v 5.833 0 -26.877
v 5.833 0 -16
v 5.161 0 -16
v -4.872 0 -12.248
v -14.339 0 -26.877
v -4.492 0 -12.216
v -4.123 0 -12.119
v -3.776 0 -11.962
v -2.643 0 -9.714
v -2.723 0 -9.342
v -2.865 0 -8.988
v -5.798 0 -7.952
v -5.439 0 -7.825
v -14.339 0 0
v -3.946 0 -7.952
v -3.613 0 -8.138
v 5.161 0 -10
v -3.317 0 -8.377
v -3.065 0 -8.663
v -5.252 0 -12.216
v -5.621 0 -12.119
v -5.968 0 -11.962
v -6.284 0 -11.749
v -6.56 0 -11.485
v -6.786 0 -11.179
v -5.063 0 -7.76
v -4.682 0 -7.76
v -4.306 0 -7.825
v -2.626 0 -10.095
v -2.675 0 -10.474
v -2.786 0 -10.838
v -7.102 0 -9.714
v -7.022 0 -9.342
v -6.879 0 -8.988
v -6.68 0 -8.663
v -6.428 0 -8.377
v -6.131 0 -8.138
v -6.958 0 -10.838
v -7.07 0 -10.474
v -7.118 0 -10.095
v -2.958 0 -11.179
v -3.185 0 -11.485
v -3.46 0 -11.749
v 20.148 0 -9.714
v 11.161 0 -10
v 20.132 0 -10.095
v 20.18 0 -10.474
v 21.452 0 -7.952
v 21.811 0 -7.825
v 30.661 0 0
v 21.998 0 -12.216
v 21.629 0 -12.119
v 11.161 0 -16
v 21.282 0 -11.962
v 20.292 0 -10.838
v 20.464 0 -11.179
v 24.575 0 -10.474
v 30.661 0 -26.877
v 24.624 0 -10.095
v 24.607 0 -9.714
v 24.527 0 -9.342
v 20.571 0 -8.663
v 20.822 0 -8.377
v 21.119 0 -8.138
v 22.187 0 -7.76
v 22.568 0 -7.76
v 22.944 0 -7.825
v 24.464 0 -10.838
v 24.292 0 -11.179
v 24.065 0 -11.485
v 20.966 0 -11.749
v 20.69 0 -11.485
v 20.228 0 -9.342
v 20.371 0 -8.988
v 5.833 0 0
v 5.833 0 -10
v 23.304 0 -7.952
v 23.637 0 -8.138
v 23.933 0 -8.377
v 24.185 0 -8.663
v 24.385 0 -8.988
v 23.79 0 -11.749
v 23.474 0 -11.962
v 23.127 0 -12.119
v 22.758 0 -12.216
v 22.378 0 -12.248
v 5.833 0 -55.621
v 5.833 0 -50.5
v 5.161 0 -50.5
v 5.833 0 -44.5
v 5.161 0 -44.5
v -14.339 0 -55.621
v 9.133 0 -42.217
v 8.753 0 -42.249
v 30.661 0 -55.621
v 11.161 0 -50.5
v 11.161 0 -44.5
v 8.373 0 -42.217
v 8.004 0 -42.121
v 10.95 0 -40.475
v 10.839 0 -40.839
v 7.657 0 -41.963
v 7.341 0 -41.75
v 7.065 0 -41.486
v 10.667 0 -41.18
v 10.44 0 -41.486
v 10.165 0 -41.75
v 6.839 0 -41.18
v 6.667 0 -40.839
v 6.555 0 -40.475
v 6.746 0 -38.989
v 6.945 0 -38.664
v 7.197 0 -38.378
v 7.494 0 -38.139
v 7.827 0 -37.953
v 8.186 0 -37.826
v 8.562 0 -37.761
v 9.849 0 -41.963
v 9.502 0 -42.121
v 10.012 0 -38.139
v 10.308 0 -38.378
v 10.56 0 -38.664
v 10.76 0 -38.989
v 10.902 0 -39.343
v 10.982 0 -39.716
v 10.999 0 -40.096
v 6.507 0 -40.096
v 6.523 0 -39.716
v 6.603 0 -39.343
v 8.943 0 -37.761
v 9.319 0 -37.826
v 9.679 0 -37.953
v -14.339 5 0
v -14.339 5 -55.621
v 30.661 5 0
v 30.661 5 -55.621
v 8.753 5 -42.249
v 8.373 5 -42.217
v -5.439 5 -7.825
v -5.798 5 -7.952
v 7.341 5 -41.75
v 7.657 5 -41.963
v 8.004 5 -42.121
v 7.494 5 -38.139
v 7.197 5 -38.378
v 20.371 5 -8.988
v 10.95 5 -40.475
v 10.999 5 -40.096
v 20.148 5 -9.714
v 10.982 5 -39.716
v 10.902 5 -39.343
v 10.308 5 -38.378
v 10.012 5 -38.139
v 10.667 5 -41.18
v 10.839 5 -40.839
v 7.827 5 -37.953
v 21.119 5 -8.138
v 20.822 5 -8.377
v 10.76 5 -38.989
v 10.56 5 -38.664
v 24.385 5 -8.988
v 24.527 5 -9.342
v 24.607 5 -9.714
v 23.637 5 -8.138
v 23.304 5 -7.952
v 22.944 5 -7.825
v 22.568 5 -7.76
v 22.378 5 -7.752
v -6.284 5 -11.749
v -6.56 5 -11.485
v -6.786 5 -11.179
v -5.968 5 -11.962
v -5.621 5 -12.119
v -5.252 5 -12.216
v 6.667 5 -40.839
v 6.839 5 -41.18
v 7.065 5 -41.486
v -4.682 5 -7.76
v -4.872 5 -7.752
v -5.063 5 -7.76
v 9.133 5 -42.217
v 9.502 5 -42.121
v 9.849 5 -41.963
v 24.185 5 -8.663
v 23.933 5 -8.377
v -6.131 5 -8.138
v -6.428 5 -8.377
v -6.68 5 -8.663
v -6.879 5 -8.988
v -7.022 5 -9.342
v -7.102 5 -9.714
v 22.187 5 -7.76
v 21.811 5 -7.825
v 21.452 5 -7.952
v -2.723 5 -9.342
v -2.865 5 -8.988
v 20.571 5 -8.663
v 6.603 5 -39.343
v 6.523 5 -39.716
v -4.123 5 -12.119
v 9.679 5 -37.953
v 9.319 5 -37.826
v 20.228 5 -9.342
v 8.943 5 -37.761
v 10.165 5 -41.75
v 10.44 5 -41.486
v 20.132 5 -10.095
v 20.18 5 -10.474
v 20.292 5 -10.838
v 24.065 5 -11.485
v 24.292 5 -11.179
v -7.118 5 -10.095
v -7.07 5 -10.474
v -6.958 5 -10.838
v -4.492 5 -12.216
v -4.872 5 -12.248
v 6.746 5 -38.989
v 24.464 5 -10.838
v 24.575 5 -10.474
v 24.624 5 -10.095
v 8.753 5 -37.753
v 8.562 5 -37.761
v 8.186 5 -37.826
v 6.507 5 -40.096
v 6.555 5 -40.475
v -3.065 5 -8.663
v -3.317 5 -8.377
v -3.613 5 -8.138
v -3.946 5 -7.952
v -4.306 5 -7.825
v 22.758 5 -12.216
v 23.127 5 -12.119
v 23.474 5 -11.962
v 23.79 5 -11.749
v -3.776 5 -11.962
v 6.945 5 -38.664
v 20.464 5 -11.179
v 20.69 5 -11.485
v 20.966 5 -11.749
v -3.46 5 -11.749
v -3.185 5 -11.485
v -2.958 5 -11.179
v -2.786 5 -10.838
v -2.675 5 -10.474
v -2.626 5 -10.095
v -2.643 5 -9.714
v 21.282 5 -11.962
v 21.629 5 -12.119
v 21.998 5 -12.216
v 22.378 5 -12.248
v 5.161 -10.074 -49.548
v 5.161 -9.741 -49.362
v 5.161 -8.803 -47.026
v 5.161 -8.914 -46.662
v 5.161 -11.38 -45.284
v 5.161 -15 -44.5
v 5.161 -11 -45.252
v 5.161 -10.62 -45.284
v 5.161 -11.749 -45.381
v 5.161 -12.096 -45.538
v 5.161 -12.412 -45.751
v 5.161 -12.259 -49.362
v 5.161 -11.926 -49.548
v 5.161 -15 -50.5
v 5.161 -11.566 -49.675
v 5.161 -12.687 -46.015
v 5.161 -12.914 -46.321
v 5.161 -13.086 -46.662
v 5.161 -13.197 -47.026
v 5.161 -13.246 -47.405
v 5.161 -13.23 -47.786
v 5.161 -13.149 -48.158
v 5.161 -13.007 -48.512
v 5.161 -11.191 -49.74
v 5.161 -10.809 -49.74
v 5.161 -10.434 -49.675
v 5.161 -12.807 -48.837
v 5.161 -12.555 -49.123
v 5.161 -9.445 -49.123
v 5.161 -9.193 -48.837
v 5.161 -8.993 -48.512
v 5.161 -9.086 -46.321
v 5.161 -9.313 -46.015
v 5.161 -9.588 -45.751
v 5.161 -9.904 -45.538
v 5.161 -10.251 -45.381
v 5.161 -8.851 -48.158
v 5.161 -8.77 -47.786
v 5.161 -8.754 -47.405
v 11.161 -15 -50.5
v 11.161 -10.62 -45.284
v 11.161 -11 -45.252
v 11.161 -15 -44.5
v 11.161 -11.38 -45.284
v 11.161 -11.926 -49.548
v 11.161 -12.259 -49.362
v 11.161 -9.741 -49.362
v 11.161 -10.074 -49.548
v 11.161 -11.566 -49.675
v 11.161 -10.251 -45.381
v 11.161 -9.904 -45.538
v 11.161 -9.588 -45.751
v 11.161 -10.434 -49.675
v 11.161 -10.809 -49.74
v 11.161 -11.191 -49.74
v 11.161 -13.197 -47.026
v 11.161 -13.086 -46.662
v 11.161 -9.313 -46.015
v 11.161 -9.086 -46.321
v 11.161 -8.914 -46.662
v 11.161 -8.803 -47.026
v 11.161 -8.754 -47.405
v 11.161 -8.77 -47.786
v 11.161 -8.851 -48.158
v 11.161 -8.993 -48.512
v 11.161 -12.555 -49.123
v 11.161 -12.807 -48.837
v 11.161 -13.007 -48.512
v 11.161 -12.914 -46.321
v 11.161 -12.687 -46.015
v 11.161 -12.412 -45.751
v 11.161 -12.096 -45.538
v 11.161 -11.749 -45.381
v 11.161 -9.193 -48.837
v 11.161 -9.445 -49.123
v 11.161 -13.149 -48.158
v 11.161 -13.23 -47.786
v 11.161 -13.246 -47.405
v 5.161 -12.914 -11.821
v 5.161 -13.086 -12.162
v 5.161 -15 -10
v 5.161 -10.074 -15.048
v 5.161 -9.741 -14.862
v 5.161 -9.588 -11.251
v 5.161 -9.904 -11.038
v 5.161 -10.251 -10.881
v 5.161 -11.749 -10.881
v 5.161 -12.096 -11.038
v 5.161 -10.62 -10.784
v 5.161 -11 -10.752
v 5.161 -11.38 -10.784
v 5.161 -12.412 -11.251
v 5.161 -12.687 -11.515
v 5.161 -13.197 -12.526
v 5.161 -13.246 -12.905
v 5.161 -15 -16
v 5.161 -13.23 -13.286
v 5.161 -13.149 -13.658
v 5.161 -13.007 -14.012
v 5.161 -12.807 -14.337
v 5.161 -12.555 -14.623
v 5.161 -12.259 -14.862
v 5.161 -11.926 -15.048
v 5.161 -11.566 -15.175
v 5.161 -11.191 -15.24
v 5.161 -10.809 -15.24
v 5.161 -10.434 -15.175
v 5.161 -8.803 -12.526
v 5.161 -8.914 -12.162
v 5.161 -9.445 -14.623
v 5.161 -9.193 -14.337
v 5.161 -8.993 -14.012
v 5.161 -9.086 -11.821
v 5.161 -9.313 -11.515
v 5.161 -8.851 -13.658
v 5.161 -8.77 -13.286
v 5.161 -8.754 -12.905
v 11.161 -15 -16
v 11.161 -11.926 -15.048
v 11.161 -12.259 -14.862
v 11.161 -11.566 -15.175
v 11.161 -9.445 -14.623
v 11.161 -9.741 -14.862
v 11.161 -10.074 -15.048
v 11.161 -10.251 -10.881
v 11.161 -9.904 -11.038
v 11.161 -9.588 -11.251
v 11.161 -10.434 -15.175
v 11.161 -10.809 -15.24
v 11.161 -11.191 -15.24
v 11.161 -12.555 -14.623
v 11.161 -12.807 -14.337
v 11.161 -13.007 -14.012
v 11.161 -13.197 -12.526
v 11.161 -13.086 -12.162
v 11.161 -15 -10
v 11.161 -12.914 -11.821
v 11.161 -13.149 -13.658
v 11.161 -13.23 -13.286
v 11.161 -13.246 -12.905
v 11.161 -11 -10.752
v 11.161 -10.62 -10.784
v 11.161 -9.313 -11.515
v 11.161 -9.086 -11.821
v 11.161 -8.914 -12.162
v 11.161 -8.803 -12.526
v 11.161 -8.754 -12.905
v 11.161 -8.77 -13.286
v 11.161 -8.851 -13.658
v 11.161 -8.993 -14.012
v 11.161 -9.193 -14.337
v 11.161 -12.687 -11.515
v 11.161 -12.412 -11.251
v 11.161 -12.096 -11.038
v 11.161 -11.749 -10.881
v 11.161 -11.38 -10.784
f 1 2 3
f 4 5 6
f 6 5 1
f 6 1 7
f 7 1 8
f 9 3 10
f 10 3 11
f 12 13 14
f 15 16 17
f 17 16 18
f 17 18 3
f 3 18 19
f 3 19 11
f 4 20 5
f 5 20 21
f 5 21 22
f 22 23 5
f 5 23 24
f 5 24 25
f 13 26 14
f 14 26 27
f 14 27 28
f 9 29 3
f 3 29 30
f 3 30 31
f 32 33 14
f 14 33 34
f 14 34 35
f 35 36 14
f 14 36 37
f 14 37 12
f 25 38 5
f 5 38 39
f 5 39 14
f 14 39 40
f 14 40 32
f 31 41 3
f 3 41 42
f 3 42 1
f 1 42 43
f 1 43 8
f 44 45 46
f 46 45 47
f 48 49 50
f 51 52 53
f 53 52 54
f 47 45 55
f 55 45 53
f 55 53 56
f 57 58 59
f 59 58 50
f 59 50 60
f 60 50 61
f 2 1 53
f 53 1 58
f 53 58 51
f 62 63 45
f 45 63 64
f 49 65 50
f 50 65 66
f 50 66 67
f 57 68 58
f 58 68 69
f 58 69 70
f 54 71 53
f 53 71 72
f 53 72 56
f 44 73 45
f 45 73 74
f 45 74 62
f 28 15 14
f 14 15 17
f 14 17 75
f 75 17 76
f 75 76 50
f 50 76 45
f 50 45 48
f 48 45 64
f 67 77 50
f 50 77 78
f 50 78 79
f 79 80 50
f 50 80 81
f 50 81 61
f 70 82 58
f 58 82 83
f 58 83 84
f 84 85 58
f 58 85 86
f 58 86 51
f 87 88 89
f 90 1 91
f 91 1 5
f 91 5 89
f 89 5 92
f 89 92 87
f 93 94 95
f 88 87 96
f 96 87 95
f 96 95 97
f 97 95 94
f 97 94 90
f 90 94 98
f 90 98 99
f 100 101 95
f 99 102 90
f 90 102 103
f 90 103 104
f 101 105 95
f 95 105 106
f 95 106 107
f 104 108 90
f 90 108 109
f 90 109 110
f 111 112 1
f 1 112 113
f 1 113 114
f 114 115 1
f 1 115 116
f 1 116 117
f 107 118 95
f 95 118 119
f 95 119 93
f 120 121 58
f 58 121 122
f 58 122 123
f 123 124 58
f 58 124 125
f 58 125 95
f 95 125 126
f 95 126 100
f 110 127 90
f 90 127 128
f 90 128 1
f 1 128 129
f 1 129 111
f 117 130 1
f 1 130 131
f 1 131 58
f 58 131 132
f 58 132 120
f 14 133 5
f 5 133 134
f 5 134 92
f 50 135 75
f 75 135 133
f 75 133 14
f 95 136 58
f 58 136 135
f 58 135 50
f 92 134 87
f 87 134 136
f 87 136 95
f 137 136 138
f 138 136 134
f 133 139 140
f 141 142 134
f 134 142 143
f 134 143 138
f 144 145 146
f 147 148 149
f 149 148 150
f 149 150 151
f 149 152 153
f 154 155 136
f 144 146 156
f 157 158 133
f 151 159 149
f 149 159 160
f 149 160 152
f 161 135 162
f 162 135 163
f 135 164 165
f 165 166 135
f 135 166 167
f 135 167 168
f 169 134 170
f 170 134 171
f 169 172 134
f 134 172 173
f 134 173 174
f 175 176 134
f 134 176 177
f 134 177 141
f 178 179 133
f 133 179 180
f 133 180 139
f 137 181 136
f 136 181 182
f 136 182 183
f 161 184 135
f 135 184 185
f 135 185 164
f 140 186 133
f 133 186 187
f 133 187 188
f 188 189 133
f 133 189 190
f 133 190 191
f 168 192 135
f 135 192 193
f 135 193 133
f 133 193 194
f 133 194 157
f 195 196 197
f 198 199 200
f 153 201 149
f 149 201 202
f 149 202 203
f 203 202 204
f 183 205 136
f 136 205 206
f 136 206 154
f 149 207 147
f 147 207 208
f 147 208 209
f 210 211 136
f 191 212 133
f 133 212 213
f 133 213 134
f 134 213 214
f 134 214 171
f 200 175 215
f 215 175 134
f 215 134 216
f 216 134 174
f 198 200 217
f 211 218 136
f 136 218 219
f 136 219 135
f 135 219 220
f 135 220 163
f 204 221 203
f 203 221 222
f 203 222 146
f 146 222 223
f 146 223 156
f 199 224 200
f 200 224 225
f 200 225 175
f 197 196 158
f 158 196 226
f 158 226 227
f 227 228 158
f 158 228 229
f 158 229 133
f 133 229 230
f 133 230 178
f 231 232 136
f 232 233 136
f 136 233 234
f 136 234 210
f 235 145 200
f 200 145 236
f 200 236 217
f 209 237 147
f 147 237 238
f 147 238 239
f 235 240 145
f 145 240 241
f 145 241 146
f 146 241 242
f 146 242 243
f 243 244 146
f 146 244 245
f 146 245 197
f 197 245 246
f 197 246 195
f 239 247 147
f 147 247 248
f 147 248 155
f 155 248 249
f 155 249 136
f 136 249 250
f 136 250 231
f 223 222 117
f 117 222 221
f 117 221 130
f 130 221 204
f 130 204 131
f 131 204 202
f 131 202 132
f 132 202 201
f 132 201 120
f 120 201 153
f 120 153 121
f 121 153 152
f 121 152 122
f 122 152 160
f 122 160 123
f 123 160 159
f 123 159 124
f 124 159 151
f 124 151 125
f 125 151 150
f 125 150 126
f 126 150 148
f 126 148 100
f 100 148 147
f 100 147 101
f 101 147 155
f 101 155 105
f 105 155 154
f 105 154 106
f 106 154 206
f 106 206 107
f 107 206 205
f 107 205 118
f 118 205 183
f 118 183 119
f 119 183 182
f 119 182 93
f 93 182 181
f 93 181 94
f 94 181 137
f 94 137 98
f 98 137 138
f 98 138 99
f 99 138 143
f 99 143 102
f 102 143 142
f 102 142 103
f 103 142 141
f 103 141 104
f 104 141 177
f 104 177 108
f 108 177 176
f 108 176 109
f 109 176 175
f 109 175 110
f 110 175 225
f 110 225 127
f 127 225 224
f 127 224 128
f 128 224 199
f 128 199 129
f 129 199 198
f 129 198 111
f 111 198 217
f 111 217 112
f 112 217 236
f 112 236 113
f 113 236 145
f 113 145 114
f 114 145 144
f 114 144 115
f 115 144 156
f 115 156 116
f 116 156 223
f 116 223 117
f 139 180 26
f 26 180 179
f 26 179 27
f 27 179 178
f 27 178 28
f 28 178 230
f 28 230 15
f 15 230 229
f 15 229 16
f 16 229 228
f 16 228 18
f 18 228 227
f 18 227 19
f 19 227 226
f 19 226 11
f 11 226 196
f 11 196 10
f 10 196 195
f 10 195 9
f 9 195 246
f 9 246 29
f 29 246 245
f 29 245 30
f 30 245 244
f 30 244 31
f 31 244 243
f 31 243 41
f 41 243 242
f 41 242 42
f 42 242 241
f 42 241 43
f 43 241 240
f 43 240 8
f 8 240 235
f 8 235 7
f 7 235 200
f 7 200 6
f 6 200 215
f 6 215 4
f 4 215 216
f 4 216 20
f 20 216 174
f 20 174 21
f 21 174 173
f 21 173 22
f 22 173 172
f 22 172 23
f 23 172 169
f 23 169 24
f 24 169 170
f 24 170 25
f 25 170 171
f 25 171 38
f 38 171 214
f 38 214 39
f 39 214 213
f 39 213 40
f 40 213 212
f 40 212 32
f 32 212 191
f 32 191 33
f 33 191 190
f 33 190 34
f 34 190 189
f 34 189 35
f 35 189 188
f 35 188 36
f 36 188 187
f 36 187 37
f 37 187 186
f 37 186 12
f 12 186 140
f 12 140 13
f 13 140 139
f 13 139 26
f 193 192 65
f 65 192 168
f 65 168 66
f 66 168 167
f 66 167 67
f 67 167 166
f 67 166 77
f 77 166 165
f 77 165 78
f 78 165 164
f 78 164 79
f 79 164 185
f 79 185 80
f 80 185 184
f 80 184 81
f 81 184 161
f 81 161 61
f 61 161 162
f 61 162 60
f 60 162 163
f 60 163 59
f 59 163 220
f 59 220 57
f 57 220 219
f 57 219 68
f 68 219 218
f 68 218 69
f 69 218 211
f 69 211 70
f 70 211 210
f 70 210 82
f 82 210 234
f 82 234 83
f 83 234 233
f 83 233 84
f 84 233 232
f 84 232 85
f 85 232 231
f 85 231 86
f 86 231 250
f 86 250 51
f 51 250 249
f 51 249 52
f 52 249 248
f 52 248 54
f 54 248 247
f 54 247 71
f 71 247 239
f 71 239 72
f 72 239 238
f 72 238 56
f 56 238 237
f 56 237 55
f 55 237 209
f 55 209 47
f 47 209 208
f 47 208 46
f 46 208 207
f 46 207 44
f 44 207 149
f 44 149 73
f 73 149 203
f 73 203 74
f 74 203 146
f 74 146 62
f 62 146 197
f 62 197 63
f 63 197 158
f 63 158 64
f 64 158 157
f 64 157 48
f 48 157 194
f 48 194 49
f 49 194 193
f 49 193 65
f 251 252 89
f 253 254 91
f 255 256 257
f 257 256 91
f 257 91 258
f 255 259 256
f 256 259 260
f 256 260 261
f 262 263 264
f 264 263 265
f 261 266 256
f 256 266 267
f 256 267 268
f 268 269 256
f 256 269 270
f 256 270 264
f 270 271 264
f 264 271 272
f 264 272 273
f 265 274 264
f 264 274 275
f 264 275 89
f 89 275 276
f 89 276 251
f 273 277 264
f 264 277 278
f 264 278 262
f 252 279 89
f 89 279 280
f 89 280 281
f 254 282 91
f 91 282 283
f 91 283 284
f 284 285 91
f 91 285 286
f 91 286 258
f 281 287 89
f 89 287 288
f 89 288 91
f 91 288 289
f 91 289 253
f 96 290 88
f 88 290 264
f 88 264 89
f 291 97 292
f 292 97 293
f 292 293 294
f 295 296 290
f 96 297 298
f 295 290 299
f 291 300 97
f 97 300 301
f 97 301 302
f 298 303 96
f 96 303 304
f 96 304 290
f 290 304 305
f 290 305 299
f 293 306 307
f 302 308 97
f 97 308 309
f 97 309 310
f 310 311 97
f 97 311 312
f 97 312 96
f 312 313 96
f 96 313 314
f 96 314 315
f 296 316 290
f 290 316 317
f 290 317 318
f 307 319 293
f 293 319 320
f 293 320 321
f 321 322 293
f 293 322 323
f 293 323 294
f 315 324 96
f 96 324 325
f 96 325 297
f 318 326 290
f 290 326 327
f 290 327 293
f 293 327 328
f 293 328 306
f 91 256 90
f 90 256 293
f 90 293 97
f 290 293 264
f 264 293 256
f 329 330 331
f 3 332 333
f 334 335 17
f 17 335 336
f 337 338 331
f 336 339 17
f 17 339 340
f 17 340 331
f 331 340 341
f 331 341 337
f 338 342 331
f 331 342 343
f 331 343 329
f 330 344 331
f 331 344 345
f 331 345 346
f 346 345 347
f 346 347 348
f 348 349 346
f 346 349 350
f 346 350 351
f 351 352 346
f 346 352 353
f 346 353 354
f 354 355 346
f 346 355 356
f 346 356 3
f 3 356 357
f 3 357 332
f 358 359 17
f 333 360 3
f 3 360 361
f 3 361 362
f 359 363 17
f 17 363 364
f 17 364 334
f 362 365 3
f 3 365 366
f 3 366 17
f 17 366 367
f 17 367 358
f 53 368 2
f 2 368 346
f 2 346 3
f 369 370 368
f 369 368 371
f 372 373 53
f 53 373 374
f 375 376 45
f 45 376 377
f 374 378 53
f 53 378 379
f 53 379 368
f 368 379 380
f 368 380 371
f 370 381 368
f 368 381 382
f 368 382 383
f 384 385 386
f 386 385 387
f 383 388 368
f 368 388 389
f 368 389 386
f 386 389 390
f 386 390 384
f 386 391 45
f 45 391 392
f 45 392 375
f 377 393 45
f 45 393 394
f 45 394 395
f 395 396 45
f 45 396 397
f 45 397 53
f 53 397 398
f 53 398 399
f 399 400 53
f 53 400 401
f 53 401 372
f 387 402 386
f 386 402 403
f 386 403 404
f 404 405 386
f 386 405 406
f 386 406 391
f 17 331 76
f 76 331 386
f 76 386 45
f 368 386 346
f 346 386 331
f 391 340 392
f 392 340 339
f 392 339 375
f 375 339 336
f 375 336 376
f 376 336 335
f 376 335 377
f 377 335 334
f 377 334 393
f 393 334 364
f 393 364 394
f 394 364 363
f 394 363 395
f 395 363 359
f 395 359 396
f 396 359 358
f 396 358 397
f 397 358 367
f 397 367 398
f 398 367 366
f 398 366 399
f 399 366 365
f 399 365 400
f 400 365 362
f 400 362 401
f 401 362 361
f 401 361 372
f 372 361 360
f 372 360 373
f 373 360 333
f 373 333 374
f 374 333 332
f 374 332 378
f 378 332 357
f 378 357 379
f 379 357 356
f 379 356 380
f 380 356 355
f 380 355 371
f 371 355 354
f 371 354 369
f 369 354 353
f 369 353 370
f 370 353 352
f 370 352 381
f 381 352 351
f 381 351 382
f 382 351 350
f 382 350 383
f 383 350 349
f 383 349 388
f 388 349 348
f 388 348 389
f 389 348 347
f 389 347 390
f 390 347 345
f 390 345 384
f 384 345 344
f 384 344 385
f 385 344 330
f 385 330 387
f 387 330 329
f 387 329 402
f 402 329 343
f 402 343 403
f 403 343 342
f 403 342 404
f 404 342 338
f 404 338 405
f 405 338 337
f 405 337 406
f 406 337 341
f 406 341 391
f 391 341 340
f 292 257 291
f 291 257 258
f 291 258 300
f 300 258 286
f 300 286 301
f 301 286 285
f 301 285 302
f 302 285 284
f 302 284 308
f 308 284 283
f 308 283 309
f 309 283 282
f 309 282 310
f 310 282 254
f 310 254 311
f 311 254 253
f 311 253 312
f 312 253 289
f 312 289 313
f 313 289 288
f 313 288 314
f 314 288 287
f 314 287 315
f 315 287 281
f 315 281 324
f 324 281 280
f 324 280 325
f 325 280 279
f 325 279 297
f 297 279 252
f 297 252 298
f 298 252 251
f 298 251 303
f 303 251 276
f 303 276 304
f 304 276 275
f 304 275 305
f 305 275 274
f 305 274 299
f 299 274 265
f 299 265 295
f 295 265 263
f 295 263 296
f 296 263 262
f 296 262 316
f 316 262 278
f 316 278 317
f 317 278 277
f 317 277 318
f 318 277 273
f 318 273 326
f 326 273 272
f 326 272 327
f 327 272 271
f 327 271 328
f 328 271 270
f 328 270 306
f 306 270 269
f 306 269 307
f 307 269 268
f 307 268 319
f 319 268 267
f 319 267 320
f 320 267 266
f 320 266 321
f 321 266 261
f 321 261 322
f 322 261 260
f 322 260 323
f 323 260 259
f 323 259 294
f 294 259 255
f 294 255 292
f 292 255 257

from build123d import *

# Parameters (mm, degrees)
BOSS_EXTRUDE1_DEPTH       = 5
F_8_CLEARANCE_HOLE1_D     = 4.4958
F_8_CLEARANCE_HOLE1_DEPTH = 17
F_8_CLEARANCE_HOLE1_TIP   = 1.350674586
SKETCH3_W                 = 6
SKETCH3_H                 = 6
BOSS_EXTRUDE2_DEPTH       = 15
F_8_CLEARANCE_HOLE2_D     = 4.4958
F_8_CLEARANCE_HOLE2_DEPTH = 17
F_8_CLEARANCE_HOLE2_TIP   = 1.350674586


with BuildPart() as part:
    # Sketch1 → Boss-Extrude1 (new body)
    with BuildSketch(Plane(origin=(0, 0, 0), x_dir=(1, 0, 0), z_dir=(0, 1, 0))):
        Polygon((-14.338976611, 0), (30.661023389, 0), (30.661023389, 55.621488653), (8.161023389, 55.621488653), (-14.338976611, 55.621488653), align=None)
    extrude(amount=BOSS_EXTRUDE1_DEPTH)

    # #8 Clearance Hole1
    with Locations(Plane(origin=(22.377803879, 0, -10), x_dir=(0, 0, -1), z_dir=(0, -1, 0))):
        with Locations((0, 0), (0, -27.25), (30.001031232, -13.625)):
            Hole(F_8_CLEARANCE_HOLE1_D / 2, depth=F_8_CLEARANCE_HOLE1_DEPTH)
            with Locations((0, 0, -(F_8_CLEARANCE_HOLE1_DEPTH + F_8_CLEARANCE_HOLE1_TIP / 2))):  # 118° drill point
                Cone(0, F_8_CLEARANCE_HOLE1_D / 2, F_8_CLEARANCE_HOLE1_TIP, mode=Mode.SUBTRACT)

    # Sketch3 → Boss-Extrude2 (add)
    with BuildSketch(Plane(origin=(0, 0, 0), x_dir=(-1, 0, 0), z_dir=(0, -1, 0))):
        with Locations((-8.161023389, 47.5)):
            Rectangle(SKETCH3_W, SKETCH3_H)
        with Locations((-8.161023389, 13)):
            Rectangle(SKETCH3_W, SKETCH3_H)
    extrude(amount=BOSS_EXTRUDE2_DEPTH)

    # #8 Clearance Hole2
    with Locations(Plane(origin=(5.161023389, -11, -47.5), x_dir=(0, 0, -1), z_dir=(-1, 0, 0))):
        with Locations((0, 0), (-34.5, 0)):
            Hole(F_8_CLEARANCE_HOLE2_D / 2, depth=F_8_CLEARANCE_HOLE2_DEPTH)
            with Locations((0, 0, -(F_8_CLEARANCE_HOLE2_DEPTH + F_8_CLEARANCE_HOLE2_TIP / 2))):  # 118° drill point
                Cone(0, F_8_CLEARANCE_HOLE2_D / 2, F_8_CLEARANCE_HOLE2_TIP, mode=Mode.SUBTRACT)


solid = part.part
